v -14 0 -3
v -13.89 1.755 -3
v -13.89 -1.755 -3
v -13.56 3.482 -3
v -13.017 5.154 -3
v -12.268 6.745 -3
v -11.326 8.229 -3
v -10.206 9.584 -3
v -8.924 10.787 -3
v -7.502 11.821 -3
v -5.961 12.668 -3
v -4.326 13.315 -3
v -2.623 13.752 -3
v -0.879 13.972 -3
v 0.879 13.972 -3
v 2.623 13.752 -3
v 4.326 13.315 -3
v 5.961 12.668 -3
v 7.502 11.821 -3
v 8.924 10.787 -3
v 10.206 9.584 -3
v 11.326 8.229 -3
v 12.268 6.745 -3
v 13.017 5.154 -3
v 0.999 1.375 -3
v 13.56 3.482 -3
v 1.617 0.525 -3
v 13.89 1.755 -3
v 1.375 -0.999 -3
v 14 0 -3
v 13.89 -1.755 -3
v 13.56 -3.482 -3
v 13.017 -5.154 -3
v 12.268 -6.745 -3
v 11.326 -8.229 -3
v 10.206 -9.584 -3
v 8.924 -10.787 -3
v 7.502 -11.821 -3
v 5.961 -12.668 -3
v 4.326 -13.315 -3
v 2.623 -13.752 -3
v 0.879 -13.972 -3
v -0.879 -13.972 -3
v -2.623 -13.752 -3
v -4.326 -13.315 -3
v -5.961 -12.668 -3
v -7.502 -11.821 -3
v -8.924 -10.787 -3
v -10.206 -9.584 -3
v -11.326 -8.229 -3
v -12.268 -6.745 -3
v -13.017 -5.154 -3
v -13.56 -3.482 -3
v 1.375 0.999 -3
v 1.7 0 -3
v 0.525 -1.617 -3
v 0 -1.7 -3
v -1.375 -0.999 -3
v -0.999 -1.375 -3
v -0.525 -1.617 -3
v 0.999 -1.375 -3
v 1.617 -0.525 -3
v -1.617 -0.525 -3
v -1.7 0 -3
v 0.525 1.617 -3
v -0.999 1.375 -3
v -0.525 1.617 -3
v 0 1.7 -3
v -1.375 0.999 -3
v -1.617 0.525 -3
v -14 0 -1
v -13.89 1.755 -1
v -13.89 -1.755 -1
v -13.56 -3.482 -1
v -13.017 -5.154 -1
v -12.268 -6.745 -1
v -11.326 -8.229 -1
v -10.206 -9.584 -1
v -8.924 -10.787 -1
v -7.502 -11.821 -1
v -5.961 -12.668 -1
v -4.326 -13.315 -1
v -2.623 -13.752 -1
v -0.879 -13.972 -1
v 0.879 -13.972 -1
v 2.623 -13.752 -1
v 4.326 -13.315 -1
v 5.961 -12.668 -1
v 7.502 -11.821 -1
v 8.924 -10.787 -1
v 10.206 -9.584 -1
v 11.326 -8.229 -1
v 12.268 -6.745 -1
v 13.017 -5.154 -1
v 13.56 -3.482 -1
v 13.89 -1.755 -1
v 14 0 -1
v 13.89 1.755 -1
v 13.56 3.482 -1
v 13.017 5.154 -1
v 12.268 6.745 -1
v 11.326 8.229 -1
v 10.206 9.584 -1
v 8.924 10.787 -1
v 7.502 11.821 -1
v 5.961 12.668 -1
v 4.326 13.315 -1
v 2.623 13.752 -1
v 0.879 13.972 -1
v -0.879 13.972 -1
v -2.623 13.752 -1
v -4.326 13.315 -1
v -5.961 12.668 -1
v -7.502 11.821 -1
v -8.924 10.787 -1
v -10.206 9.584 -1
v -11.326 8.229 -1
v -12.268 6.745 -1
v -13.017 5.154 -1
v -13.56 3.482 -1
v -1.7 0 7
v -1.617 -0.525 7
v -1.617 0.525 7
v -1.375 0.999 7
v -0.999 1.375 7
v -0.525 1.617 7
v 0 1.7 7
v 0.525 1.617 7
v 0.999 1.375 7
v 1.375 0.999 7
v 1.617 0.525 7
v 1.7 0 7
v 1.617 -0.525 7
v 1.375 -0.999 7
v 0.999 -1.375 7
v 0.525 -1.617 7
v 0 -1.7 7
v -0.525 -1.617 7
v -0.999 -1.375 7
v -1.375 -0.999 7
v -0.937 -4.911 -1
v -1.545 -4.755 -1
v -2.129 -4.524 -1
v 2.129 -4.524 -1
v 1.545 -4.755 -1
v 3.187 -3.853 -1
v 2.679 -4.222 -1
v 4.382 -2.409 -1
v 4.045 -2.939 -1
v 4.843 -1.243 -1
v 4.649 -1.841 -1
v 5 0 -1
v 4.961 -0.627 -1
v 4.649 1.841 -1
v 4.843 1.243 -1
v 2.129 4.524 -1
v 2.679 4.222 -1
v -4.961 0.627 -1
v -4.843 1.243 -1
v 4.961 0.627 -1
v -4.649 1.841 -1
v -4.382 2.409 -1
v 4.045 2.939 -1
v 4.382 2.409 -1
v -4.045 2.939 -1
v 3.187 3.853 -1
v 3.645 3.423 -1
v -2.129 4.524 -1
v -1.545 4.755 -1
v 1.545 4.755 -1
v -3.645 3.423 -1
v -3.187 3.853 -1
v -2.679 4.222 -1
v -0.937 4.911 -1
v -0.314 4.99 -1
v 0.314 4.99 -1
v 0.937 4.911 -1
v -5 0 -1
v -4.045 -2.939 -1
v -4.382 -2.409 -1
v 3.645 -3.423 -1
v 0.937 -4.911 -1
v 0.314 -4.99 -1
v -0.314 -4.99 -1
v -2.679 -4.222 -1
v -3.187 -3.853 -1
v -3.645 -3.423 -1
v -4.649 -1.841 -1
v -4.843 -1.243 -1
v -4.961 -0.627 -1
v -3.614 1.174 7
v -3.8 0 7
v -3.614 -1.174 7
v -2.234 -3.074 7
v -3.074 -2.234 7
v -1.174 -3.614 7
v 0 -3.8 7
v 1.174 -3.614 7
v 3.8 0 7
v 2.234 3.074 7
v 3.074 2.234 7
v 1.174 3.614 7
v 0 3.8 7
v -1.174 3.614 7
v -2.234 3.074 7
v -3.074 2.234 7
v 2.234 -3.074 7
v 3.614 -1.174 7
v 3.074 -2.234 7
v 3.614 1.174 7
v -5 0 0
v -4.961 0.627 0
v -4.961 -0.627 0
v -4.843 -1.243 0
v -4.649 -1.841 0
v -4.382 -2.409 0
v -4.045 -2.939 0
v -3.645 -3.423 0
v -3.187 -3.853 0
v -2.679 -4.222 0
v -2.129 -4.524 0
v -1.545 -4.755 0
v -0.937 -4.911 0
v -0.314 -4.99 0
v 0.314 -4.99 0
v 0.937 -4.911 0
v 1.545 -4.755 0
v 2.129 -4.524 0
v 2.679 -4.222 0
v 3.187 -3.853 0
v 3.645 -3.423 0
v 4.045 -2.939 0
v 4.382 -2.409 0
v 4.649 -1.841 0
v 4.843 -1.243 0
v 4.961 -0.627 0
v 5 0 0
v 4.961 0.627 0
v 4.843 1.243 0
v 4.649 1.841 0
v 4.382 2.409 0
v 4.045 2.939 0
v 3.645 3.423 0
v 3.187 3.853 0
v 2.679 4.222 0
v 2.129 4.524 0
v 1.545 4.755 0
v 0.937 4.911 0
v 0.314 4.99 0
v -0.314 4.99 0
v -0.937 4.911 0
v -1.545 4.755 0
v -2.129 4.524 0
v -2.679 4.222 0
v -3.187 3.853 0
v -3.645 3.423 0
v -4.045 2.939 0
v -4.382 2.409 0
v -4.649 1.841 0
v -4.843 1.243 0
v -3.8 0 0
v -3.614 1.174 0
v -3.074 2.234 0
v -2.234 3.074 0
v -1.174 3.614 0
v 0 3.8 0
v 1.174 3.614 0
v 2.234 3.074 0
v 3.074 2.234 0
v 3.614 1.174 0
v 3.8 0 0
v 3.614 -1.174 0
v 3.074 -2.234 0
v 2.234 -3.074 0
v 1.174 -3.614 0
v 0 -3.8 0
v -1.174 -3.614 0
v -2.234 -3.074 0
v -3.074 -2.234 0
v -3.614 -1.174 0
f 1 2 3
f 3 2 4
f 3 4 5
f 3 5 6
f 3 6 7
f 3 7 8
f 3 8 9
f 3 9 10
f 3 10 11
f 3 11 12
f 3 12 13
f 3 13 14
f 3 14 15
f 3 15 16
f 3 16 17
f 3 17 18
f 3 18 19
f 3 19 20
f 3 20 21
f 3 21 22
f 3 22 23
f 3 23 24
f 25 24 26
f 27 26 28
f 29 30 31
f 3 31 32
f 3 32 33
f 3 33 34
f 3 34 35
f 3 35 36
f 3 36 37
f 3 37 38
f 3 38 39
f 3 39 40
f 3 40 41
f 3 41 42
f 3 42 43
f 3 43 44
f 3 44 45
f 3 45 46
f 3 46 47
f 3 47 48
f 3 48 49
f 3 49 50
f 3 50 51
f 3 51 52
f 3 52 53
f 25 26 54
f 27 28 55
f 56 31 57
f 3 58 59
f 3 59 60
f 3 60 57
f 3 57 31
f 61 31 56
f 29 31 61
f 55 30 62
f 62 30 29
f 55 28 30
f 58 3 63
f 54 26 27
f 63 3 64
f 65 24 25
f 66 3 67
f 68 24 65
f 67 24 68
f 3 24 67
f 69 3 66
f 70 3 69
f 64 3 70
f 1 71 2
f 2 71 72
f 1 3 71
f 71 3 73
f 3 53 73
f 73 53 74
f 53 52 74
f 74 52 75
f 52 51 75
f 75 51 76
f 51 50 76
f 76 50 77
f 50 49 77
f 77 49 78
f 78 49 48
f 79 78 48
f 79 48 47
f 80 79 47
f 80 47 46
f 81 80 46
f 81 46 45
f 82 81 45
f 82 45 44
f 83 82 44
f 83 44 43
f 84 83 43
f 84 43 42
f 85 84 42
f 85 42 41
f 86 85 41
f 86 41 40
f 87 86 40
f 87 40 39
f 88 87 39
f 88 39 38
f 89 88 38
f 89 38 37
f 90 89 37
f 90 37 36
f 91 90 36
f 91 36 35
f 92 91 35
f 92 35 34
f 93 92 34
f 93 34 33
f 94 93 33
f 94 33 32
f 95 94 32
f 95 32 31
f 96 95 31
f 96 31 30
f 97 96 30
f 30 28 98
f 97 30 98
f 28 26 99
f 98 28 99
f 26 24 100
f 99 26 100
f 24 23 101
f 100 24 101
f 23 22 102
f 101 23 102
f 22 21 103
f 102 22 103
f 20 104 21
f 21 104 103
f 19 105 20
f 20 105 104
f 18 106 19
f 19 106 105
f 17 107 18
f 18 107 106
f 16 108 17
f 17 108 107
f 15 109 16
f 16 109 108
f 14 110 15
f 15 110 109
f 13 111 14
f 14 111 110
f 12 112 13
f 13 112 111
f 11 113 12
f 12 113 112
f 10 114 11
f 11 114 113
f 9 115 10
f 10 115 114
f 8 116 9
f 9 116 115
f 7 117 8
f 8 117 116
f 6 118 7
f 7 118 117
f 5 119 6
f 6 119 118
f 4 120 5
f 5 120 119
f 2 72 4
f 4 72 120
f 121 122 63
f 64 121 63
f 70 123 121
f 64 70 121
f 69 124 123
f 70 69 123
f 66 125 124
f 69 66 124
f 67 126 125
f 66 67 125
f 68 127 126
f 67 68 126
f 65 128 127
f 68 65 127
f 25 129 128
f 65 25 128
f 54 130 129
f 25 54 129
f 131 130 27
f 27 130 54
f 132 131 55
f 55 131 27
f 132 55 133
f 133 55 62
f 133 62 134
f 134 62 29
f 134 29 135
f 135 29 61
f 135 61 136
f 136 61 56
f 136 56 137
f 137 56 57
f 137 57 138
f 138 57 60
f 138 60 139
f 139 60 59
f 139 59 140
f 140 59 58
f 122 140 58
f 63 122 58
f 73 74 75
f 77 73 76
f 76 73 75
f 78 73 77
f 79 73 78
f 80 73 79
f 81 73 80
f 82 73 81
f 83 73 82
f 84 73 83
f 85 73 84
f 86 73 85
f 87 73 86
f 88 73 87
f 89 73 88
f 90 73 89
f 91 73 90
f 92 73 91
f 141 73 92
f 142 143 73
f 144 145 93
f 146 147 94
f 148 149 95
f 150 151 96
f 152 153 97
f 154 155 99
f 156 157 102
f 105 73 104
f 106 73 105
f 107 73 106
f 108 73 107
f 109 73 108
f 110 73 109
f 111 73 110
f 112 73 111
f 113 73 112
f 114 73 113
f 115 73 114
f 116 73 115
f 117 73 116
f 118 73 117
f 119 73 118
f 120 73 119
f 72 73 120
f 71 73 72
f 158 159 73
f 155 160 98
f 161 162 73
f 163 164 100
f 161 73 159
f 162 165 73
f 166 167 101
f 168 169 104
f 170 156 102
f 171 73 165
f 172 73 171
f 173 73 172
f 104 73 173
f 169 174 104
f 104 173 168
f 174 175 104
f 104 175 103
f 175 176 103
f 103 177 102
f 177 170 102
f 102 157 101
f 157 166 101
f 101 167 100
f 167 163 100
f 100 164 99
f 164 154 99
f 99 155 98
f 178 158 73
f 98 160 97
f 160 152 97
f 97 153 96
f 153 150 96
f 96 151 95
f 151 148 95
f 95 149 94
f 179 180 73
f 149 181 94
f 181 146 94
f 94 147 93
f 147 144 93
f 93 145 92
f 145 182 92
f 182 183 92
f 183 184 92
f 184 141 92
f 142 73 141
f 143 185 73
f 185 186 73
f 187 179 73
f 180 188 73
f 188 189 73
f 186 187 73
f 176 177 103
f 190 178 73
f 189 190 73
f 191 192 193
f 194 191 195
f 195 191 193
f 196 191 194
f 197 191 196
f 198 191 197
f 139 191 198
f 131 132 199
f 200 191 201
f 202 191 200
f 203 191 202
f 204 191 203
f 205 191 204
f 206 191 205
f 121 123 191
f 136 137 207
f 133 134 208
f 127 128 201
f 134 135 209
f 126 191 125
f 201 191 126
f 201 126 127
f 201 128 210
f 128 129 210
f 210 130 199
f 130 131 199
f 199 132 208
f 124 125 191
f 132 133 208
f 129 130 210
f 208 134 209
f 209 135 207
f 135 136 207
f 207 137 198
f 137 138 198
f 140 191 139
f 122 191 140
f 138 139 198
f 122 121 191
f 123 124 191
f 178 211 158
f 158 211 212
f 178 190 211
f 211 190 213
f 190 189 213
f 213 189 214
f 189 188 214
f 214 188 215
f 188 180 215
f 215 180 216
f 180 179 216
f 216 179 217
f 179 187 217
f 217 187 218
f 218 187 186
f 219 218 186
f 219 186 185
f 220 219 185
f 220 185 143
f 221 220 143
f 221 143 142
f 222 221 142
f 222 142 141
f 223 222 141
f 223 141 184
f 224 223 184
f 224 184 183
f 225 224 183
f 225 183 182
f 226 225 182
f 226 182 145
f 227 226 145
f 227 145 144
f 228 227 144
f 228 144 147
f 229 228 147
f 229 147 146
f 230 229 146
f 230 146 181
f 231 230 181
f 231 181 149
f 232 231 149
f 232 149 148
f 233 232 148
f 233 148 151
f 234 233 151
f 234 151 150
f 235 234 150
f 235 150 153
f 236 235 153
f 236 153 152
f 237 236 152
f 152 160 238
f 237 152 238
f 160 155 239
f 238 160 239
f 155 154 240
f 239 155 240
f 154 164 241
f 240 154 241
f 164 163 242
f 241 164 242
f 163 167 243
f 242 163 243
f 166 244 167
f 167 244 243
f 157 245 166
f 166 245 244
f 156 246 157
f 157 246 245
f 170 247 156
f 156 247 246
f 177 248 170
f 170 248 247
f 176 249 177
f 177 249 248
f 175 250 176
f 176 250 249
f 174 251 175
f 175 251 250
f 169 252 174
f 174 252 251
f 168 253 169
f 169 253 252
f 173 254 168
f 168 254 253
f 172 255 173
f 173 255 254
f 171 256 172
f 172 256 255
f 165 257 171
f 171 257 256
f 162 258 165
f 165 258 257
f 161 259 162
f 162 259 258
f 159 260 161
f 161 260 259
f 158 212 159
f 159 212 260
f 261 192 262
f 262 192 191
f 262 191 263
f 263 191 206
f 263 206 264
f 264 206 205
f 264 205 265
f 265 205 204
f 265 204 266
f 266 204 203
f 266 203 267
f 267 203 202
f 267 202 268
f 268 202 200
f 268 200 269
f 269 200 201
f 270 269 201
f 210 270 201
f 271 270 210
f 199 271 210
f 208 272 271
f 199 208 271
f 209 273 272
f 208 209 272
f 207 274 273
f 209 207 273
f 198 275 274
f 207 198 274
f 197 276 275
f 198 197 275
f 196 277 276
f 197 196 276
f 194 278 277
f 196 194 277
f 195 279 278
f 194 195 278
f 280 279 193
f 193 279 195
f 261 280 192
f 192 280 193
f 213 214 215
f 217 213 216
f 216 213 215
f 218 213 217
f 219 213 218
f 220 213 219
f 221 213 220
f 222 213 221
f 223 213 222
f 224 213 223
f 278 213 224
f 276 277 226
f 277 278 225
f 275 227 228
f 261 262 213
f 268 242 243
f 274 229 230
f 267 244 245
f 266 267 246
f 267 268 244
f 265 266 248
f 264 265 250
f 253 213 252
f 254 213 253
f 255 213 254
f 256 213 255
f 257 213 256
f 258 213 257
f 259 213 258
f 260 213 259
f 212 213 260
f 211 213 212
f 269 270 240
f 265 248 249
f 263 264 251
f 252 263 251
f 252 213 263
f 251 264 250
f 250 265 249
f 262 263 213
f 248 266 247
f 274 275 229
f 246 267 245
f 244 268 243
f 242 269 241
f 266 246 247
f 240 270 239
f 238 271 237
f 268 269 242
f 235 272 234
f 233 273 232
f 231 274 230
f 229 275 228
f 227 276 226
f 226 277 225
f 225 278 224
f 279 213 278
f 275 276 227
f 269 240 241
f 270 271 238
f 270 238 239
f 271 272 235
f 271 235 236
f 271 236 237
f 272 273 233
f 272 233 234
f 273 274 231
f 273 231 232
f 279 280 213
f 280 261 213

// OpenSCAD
tol=0.2;
$fn=20;

// center
difference(){

	union(){
		// center m8
		cylinder(r=4-tol,h=7);

		translate([0,0,-1]) cylinder($fn=50,r=5,h=1);
		translate([0,0,-1-2]) cylinder($fn=50,r=14,h=2);
		
		
	}

	
	//center m3
	translate([0,0,-tol-1-20]) cylinder(r=1.5+tol,h=7+2*tol+40);
}
	
